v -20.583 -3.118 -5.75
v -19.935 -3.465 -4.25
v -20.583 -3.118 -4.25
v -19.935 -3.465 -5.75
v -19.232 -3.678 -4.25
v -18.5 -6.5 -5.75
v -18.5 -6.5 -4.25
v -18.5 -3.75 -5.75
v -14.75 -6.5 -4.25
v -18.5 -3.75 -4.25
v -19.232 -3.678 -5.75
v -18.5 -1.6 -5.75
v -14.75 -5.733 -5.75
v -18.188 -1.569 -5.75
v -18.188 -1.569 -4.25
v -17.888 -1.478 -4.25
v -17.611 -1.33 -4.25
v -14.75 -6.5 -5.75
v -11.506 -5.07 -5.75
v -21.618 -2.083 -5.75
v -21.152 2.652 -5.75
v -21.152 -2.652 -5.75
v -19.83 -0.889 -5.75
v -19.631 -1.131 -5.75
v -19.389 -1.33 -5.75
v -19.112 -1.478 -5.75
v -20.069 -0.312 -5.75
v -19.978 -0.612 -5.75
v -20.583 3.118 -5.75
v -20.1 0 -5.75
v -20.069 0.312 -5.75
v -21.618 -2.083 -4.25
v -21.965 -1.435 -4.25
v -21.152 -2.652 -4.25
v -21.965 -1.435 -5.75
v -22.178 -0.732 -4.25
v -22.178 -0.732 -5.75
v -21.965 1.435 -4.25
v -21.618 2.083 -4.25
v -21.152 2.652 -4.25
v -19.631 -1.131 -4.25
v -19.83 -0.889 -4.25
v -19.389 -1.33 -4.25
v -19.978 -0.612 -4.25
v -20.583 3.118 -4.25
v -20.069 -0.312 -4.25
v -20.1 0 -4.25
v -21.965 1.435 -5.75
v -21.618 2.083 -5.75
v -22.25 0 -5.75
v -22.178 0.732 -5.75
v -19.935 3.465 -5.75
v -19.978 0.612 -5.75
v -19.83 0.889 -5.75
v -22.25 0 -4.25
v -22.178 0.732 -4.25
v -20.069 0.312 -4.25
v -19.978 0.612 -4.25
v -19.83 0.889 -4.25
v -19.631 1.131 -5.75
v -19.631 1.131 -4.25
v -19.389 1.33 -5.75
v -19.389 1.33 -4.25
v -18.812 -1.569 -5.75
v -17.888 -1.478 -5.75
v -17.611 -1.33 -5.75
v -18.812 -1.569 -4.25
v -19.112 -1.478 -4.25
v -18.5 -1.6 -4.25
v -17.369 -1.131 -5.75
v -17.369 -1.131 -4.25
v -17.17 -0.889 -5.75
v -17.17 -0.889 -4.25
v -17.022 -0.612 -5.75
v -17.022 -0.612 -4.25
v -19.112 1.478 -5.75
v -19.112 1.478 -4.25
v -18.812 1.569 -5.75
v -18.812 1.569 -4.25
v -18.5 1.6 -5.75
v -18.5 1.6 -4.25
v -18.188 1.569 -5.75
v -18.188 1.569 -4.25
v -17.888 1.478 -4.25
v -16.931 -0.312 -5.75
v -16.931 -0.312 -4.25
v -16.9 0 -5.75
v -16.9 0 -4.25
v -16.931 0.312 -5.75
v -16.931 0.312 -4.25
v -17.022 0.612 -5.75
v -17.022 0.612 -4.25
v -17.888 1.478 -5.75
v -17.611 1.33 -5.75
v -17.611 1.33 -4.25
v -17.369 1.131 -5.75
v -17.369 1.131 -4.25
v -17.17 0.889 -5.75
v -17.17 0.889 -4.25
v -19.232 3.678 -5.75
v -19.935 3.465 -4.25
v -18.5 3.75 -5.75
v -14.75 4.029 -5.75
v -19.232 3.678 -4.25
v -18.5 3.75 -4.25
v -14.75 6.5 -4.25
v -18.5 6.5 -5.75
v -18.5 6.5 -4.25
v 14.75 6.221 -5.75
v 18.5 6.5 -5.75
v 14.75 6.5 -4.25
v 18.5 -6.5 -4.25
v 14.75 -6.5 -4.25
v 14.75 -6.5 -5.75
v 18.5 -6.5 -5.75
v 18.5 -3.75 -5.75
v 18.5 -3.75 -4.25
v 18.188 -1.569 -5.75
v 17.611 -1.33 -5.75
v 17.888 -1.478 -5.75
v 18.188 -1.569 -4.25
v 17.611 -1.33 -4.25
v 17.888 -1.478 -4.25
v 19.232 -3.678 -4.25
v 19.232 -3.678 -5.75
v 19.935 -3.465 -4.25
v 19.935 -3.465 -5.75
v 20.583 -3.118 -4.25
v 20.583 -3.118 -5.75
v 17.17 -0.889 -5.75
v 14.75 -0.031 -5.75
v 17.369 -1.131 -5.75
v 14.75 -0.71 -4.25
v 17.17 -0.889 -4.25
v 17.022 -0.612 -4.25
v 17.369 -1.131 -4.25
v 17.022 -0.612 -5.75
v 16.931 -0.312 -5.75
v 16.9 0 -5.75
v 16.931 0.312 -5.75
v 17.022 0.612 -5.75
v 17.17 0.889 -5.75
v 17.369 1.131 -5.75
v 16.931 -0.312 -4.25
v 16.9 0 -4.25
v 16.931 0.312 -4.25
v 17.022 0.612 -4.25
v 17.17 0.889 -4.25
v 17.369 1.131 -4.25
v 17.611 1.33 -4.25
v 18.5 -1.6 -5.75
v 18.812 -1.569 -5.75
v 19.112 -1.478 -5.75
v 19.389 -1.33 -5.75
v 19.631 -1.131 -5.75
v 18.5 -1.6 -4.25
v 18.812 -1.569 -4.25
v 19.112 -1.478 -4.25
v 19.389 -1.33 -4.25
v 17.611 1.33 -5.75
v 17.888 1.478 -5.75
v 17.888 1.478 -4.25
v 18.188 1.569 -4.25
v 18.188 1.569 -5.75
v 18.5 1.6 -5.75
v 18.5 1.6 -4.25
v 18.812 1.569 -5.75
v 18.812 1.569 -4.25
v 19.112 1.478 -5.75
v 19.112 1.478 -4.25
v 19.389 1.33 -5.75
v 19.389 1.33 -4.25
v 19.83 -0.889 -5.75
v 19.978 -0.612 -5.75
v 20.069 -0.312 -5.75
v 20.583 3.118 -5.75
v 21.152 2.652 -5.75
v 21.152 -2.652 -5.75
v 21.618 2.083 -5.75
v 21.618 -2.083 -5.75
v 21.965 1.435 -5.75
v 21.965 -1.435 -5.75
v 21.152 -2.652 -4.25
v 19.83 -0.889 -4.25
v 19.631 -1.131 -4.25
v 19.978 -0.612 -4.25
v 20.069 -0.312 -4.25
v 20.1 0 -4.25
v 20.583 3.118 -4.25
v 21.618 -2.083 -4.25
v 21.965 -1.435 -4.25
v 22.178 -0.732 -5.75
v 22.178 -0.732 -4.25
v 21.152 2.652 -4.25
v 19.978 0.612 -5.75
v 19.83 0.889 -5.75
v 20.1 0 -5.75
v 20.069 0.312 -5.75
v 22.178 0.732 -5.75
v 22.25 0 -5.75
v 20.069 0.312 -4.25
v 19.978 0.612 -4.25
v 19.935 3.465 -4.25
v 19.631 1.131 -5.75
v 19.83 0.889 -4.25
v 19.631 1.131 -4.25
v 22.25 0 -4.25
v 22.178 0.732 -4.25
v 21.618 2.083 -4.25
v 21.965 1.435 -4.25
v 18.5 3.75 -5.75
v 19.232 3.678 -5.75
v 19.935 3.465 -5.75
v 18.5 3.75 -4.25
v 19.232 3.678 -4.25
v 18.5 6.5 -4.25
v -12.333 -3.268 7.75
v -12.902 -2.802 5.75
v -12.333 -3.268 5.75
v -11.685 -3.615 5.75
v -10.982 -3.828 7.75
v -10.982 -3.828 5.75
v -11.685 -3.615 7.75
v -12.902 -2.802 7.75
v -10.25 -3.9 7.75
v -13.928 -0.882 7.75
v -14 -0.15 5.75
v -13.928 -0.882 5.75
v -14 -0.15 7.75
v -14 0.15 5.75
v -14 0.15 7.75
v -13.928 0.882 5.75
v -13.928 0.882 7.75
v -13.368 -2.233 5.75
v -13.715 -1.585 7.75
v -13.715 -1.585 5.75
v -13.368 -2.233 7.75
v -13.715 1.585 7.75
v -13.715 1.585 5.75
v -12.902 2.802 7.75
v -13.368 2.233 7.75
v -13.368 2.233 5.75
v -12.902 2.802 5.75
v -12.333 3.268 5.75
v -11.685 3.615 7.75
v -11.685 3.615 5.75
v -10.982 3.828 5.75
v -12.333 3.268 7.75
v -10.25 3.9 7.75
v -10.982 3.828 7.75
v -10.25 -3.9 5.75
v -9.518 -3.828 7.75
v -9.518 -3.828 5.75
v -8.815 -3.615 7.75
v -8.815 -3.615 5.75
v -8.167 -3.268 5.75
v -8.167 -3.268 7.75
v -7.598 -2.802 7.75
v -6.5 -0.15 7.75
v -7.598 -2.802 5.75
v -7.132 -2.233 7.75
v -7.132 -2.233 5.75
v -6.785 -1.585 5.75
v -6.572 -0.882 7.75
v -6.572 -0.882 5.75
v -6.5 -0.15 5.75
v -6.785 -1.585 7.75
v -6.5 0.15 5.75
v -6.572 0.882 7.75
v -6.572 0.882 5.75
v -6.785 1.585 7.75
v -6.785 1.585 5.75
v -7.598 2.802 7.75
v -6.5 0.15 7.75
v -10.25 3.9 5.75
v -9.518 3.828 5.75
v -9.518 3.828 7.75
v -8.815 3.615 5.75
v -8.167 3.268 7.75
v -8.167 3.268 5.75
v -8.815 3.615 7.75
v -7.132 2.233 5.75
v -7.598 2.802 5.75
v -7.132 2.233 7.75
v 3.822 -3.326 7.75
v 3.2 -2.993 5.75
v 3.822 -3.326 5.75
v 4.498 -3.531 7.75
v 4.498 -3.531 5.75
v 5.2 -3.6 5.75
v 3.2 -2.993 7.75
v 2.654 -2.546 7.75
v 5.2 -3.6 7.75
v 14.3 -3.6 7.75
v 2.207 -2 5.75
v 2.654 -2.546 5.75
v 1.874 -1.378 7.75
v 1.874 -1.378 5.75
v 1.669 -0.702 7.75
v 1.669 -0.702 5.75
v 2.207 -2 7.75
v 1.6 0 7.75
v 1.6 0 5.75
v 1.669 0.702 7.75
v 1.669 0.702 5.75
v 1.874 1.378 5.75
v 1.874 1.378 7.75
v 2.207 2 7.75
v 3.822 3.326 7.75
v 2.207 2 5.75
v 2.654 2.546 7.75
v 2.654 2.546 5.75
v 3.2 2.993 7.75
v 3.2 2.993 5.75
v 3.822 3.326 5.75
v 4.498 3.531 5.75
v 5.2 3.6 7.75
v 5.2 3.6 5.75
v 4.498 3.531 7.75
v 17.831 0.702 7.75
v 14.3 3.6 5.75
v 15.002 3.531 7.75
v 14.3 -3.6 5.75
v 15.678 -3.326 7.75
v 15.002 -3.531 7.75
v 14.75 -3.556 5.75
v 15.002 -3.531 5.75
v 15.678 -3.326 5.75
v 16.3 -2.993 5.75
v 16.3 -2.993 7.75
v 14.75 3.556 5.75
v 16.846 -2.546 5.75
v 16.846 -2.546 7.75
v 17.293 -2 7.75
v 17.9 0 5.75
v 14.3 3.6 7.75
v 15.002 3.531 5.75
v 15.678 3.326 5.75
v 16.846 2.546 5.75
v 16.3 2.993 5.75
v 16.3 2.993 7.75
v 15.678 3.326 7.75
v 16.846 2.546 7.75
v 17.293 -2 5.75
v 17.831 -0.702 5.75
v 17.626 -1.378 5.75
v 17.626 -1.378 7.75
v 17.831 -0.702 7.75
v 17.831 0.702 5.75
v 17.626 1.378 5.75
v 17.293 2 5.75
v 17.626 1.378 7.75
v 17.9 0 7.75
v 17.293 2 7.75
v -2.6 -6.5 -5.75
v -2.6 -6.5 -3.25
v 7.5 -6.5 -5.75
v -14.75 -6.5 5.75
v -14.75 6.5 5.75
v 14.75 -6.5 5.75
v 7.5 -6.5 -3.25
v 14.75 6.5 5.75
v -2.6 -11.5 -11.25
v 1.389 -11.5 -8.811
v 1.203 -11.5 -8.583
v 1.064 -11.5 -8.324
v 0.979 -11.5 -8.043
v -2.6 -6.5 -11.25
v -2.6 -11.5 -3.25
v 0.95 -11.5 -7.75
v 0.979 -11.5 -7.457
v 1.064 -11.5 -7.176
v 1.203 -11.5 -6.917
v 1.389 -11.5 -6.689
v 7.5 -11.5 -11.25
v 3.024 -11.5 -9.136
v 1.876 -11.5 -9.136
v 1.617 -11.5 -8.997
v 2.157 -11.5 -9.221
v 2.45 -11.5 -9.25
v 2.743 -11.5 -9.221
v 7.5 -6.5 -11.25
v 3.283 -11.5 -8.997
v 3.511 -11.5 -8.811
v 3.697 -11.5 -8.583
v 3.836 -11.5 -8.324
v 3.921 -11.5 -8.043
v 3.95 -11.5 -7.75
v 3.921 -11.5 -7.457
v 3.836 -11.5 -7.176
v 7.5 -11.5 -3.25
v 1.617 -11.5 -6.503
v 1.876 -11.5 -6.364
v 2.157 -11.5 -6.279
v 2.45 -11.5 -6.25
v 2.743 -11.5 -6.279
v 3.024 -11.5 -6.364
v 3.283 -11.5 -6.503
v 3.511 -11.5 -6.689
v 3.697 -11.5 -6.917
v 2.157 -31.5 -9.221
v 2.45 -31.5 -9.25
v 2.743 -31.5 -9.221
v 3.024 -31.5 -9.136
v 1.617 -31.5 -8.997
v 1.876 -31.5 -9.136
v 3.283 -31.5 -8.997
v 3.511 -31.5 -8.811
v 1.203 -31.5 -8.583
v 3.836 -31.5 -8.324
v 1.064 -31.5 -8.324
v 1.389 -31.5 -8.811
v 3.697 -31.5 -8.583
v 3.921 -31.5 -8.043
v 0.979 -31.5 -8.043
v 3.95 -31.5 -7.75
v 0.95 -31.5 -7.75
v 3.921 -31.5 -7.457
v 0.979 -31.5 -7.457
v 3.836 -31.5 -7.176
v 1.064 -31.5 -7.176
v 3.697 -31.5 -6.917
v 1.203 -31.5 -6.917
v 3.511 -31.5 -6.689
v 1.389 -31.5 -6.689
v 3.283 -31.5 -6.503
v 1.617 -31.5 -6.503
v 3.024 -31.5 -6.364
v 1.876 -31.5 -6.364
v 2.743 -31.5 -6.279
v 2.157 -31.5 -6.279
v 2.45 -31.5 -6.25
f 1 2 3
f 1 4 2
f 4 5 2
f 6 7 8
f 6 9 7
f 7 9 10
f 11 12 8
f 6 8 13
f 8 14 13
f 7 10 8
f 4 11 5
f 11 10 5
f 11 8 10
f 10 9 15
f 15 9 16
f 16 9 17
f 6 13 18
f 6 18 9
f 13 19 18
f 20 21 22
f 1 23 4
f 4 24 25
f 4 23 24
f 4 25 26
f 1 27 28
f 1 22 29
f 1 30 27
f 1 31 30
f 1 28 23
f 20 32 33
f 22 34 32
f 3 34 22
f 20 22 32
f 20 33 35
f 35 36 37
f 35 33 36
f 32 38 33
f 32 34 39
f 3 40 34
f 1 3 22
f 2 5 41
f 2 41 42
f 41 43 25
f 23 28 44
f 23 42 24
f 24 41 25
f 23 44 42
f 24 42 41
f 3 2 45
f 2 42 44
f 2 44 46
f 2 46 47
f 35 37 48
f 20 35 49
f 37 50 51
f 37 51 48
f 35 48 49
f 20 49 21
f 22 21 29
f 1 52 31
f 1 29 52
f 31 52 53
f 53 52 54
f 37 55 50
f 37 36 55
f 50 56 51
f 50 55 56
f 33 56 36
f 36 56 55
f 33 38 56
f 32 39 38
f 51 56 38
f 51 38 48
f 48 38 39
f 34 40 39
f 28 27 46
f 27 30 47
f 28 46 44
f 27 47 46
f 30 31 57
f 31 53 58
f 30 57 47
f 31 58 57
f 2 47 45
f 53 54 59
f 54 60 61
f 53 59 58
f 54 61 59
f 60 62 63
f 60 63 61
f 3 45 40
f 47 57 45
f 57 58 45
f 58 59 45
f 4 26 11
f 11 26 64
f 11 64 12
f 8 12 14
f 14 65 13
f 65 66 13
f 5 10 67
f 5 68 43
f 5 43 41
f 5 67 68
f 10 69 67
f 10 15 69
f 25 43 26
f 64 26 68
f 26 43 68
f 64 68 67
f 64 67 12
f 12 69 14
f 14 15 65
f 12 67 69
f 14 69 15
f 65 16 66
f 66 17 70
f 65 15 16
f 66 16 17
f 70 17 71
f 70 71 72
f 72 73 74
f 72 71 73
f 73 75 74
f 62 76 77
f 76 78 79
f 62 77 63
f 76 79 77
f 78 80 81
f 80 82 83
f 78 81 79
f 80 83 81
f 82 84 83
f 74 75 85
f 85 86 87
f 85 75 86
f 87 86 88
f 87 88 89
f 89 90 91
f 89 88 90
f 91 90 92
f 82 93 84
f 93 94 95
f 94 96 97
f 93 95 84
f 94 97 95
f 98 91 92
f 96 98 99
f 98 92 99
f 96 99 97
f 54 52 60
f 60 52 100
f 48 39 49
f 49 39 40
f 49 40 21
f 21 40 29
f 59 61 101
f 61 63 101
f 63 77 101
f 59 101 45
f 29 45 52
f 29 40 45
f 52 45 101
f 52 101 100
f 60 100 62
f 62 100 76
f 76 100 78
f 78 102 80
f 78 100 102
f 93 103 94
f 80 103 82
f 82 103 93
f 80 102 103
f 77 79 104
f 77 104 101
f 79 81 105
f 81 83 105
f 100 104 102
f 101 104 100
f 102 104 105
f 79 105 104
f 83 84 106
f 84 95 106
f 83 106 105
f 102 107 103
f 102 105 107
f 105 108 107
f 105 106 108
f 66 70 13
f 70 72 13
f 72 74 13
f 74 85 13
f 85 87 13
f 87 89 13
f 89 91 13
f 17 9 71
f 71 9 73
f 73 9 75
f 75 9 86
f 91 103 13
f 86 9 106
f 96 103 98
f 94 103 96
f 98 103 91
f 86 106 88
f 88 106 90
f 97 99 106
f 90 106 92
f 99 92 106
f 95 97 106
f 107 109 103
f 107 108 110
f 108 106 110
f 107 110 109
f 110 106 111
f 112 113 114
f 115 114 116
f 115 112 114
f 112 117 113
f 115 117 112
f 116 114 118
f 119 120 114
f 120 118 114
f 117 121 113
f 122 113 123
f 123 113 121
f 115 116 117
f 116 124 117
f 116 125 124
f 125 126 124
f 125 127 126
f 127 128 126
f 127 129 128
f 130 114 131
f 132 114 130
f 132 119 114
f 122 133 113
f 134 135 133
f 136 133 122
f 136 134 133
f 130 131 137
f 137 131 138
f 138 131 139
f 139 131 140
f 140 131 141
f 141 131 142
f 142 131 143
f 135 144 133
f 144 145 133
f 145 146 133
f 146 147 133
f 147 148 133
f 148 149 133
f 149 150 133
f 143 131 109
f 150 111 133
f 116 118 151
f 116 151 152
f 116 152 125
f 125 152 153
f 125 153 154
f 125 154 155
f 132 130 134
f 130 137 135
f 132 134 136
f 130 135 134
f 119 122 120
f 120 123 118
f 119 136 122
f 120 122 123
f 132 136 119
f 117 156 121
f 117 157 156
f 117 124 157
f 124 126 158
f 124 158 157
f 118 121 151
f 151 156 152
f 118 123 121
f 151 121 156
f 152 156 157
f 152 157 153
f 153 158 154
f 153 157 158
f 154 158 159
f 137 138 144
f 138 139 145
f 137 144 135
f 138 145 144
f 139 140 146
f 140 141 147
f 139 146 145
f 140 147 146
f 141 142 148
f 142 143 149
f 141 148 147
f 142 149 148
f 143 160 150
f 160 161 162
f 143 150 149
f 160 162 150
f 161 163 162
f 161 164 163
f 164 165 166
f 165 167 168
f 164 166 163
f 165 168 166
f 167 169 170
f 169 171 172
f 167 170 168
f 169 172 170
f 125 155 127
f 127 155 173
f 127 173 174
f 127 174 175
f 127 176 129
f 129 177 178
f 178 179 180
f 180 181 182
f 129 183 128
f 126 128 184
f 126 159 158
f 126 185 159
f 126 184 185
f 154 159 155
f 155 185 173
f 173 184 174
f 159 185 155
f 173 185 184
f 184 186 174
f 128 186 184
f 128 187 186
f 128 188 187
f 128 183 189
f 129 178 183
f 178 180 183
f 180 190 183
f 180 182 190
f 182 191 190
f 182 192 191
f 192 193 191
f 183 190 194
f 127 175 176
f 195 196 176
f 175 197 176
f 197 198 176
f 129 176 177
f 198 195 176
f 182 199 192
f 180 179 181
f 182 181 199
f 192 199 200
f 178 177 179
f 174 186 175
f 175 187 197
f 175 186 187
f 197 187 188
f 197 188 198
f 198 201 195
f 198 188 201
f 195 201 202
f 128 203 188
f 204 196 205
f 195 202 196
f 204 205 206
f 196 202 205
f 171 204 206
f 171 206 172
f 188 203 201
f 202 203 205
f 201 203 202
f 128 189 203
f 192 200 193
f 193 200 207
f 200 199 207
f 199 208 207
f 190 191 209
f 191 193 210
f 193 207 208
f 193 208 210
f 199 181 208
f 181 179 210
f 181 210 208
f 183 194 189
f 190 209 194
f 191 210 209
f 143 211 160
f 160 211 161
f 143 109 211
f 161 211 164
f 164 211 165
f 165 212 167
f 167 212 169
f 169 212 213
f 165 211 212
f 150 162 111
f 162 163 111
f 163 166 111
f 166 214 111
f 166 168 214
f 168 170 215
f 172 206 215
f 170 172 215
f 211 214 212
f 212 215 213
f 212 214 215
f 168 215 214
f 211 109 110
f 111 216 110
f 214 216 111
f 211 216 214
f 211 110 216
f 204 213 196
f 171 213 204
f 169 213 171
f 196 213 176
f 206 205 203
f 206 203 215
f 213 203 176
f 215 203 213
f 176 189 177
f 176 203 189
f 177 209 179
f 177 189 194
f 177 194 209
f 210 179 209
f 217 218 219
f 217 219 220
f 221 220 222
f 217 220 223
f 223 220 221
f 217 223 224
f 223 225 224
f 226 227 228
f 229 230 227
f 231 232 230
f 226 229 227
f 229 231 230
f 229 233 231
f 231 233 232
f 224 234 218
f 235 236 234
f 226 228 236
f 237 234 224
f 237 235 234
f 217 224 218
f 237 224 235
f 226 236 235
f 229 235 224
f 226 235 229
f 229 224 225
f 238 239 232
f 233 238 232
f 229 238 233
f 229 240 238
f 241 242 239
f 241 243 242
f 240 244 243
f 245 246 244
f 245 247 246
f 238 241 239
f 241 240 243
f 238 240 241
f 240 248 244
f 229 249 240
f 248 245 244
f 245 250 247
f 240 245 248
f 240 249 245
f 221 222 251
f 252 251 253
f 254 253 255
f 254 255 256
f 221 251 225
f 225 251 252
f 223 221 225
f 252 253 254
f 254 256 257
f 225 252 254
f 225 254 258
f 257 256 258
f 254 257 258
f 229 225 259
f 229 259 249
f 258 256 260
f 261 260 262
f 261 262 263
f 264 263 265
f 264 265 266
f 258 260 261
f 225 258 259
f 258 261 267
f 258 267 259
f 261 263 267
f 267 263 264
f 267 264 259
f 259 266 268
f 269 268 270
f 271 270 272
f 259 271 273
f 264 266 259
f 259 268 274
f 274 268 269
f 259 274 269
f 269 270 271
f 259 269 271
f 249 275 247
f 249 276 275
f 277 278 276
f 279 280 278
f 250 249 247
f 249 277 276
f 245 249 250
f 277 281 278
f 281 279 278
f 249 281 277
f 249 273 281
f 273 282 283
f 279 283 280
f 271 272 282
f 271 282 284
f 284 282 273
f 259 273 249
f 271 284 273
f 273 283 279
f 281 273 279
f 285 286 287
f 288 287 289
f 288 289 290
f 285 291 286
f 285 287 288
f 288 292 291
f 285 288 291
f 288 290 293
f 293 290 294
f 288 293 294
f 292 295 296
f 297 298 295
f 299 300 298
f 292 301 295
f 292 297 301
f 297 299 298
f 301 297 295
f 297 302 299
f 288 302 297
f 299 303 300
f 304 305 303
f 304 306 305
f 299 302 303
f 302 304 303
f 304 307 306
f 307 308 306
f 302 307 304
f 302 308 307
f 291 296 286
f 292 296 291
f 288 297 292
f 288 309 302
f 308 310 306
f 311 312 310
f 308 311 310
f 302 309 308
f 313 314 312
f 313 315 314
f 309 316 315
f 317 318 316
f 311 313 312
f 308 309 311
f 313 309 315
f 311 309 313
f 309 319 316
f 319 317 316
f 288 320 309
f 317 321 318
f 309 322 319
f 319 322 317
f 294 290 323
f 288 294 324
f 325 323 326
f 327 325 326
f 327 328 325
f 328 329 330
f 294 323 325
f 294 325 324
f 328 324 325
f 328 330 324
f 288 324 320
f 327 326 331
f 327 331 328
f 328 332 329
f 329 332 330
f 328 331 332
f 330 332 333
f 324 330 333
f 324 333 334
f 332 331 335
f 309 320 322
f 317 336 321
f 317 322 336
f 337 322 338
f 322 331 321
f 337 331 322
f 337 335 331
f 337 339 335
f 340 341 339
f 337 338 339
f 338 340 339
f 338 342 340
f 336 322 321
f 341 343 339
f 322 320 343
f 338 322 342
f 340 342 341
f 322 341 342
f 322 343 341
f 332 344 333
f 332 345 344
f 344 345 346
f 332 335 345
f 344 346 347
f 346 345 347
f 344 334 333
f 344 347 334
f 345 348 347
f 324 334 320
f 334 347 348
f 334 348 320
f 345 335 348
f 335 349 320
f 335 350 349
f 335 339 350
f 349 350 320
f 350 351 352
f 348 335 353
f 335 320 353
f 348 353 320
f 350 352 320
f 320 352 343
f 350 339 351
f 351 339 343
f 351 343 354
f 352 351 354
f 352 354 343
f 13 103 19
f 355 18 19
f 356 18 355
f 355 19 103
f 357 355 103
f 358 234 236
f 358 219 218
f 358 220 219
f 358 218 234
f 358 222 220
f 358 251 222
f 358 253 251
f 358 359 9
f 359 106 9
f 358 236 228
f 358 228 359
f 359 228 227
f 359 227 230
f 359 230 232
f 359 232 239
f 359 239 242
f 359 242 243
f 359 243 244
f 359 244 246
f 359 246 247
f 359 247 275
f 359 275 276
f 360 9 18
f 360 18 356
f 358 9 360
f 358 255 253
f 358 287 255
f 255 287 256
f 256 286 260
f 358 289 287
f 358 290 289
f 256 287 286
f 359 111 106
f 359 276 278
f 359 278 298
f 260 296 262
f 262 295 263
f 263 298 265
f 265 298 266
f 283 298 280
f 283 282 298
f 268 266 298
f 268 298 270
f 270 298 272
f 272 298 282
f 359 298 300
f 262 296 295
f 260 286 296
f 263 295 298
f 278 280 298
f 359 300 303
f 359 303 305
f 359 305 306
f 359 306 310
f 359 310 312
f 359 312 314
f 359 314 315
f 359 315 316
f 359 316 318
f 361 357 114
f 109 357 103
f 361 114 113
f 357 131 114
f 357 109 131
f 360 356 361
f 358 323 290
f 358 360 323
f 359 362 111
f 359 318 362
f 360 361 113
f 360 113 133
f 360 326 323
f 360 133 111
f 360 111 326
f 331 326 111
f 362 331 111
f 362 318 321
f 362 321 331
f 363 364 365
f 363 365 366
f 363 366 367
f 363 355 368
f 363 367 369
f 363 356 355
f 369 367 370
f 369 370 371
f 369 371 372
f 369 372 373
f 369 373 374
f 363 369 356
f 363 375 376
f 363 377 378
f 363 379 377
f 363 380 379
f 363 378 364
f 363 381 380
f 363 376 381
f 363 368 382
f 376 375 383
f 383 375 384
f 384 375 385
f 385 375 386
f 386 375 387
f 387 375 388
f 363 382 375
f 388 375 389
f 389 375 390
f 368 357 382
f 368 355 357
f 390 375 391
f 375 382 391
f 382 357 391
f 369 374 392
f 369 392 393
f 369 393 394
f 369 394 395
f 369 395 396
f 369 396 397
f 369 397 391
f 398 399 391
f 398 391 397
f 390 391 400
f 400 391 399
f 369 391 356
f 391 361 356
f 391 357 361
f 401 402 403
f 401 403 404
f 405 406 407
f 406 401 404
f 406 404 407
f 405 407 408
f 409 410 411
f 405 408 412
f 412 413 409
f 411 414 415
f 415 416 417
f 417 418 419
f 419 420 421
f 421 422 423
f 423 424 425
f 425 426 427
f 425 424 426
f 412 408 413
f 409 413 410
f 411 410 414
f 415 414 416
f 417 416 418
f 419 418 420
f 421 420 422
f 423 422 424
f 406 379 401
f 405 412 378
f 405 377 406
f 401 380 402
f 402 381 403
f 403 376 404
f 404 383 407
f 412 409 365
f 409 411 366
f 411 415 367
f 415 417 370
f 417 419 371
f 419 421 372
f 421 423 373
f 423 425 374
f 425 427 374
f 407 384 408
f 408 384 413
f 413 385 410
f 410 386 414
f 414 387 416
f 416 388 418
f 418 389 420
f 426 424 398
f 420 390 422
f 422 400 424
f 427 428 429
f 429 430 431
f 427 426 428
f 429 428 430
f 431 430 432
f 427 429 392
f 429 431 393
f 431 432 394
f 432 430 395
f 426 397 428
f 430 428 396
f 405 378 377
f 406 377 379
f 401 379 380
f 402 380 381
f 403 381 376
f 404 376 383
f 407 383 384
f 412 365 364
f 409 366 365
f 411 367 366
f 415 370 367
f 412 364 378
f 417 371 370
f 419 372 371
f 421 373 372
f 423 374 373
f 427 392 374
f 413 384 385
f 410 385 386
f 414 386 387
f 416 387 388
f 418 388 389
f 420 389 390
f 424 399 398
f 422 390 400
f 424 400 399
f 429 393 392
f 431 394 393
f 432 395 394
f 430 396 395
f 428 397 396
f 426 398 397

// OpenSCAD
// Sharp GP2Y0A21YK0F Distance Measuring Sensor
// Units: mm
// Origin: Center of the main body (29.5 x 13 x 11.5 block)
// +Z: Up (toward lenses), +Y: Forward

$fn = 32;

// Dimensions
BODY_W = 29.5;
BODY_D = 13;
BODY_H = 11.5; // Main case + flange thickness

FLANGE_W = 37; // Distance between ear arc centers
FLANGE_R = 3.75;
FLANGE_T = 1.5; // Estimated from "2-1.5" note

LENS_PROTRUSION = 2;
LENS_H = 7.2; // From front view height
EMITTER_W = 7.5;
DETECTOR_W = 16.3;
LENS_DIST = 20;
LENS_OFFSET_X = -10.25; // Calculated: -14.75 (left edge) + 4.5

CONN_W = 10.1;
CONN_OFFSET_RIGHT = 14.75;
CONN_X_MAX = (FLANGE_W/2 + FLANGE_R) - CONN_OFFSET_RIGHT; // 18.5 + 3.75 - 14.75 = 7.5
CONN_X_MIN = CONN_X_MAX - CONN_W; // 7.5 - 10.1 = -2.6

module gp2y0a21yk0f() {
    // 1. Main Case Body (centered at origin)
    color("DimGray")
    cube([BODY_W, BODY_D, BODY_H], center=true);

    // 2. Connecting Bar (Flange) with Mounting Ears
    color("DimGray")
    difference() {
        union() {
            // Main plate
            translate([0, 0, -BODY_H/2 + FLANGE_T/2])
                cube([FLANGE_W, BODY_D, FLANGE_T], center=true);
            
            // Rounded Ears
            for(x = [-FLANGE_W/2, FLANGE_W/2]) {
                translate([x, 0, -BODY_H/2 + FLANGE_T/2])
                    cylinder(h=FLANGE_T, r=FLANGE_R, center=true);
            }
        }
        
        // Mounting Holes
        for(x = [-FLANGE_W/2, FLANGE_W/2]) {
            translate([x, 0, -BODY_H/2])
                cylinder(d=3.2, h=FLANGE_T*3, center=true);
        }
        
        // Cable Cutout
        translate([(CONN_X_MIN + CONN_X_MAX)/2, -BODY_D/2, -BODY_H/2])
            cube([CONN_W, BODY_D/2, FLANGE_T*3], center=true);
    }

    // 3. Lenses (Top protrusions)
    color("Black") {
        // Light Emitter (Circular protrusion)
        translate([LENS_OFFSET_X, 0, BODY_H/2])
            hull() {
                translate([0, (7.2-EMITTER_W)/2, 0]) cylinder(d=EMITTER_W, h=LENS_PROTRUSION);
                translate([0, -(7.2-EMITTER_W)/2, 0]) cylinder(d=EMITTER_W, h=LENS_PROTRUSION);
            }

        // Light Detector (Rectangular/Oval protrusion)
        translate([LENS_OFFSET_X + LENS_DIST, 0, BODY_H/2])
            hull() {
                translate([(DETECTOR_W-7.2)/2, 0, 0]) cylinder(d=7.2, h=LENS_PROTRUSION);
                translate([-(DETECTOR_W-7.2)/2, 0, 0]) cylinder(d=7.2, h=LENS_PROTRUSION);
            }
    }

    // 4. Connector (Simplified block sticking out from bottom/side)
    color("White") {
        translate([(CONN_X_MIN + CONN_X_MAX)/2, -BODY_D/2 - 2.5, -BODY_H/2 - 1.5])
            cube([CONN_W, 5, 8], center=true);
    }

    // 5. Cable (Simplified representation)
    color("Gray") {
        translate([(CONN_X_MIN + CONN_X_MAX)/2, -BODY_D/2 - 5, -BODY_H/2 - 2])
            rotate([90, 0, 0])
                cylinder(d=3, h=20);
    }
}

// Render the model
gp2y0a21yk0f();
